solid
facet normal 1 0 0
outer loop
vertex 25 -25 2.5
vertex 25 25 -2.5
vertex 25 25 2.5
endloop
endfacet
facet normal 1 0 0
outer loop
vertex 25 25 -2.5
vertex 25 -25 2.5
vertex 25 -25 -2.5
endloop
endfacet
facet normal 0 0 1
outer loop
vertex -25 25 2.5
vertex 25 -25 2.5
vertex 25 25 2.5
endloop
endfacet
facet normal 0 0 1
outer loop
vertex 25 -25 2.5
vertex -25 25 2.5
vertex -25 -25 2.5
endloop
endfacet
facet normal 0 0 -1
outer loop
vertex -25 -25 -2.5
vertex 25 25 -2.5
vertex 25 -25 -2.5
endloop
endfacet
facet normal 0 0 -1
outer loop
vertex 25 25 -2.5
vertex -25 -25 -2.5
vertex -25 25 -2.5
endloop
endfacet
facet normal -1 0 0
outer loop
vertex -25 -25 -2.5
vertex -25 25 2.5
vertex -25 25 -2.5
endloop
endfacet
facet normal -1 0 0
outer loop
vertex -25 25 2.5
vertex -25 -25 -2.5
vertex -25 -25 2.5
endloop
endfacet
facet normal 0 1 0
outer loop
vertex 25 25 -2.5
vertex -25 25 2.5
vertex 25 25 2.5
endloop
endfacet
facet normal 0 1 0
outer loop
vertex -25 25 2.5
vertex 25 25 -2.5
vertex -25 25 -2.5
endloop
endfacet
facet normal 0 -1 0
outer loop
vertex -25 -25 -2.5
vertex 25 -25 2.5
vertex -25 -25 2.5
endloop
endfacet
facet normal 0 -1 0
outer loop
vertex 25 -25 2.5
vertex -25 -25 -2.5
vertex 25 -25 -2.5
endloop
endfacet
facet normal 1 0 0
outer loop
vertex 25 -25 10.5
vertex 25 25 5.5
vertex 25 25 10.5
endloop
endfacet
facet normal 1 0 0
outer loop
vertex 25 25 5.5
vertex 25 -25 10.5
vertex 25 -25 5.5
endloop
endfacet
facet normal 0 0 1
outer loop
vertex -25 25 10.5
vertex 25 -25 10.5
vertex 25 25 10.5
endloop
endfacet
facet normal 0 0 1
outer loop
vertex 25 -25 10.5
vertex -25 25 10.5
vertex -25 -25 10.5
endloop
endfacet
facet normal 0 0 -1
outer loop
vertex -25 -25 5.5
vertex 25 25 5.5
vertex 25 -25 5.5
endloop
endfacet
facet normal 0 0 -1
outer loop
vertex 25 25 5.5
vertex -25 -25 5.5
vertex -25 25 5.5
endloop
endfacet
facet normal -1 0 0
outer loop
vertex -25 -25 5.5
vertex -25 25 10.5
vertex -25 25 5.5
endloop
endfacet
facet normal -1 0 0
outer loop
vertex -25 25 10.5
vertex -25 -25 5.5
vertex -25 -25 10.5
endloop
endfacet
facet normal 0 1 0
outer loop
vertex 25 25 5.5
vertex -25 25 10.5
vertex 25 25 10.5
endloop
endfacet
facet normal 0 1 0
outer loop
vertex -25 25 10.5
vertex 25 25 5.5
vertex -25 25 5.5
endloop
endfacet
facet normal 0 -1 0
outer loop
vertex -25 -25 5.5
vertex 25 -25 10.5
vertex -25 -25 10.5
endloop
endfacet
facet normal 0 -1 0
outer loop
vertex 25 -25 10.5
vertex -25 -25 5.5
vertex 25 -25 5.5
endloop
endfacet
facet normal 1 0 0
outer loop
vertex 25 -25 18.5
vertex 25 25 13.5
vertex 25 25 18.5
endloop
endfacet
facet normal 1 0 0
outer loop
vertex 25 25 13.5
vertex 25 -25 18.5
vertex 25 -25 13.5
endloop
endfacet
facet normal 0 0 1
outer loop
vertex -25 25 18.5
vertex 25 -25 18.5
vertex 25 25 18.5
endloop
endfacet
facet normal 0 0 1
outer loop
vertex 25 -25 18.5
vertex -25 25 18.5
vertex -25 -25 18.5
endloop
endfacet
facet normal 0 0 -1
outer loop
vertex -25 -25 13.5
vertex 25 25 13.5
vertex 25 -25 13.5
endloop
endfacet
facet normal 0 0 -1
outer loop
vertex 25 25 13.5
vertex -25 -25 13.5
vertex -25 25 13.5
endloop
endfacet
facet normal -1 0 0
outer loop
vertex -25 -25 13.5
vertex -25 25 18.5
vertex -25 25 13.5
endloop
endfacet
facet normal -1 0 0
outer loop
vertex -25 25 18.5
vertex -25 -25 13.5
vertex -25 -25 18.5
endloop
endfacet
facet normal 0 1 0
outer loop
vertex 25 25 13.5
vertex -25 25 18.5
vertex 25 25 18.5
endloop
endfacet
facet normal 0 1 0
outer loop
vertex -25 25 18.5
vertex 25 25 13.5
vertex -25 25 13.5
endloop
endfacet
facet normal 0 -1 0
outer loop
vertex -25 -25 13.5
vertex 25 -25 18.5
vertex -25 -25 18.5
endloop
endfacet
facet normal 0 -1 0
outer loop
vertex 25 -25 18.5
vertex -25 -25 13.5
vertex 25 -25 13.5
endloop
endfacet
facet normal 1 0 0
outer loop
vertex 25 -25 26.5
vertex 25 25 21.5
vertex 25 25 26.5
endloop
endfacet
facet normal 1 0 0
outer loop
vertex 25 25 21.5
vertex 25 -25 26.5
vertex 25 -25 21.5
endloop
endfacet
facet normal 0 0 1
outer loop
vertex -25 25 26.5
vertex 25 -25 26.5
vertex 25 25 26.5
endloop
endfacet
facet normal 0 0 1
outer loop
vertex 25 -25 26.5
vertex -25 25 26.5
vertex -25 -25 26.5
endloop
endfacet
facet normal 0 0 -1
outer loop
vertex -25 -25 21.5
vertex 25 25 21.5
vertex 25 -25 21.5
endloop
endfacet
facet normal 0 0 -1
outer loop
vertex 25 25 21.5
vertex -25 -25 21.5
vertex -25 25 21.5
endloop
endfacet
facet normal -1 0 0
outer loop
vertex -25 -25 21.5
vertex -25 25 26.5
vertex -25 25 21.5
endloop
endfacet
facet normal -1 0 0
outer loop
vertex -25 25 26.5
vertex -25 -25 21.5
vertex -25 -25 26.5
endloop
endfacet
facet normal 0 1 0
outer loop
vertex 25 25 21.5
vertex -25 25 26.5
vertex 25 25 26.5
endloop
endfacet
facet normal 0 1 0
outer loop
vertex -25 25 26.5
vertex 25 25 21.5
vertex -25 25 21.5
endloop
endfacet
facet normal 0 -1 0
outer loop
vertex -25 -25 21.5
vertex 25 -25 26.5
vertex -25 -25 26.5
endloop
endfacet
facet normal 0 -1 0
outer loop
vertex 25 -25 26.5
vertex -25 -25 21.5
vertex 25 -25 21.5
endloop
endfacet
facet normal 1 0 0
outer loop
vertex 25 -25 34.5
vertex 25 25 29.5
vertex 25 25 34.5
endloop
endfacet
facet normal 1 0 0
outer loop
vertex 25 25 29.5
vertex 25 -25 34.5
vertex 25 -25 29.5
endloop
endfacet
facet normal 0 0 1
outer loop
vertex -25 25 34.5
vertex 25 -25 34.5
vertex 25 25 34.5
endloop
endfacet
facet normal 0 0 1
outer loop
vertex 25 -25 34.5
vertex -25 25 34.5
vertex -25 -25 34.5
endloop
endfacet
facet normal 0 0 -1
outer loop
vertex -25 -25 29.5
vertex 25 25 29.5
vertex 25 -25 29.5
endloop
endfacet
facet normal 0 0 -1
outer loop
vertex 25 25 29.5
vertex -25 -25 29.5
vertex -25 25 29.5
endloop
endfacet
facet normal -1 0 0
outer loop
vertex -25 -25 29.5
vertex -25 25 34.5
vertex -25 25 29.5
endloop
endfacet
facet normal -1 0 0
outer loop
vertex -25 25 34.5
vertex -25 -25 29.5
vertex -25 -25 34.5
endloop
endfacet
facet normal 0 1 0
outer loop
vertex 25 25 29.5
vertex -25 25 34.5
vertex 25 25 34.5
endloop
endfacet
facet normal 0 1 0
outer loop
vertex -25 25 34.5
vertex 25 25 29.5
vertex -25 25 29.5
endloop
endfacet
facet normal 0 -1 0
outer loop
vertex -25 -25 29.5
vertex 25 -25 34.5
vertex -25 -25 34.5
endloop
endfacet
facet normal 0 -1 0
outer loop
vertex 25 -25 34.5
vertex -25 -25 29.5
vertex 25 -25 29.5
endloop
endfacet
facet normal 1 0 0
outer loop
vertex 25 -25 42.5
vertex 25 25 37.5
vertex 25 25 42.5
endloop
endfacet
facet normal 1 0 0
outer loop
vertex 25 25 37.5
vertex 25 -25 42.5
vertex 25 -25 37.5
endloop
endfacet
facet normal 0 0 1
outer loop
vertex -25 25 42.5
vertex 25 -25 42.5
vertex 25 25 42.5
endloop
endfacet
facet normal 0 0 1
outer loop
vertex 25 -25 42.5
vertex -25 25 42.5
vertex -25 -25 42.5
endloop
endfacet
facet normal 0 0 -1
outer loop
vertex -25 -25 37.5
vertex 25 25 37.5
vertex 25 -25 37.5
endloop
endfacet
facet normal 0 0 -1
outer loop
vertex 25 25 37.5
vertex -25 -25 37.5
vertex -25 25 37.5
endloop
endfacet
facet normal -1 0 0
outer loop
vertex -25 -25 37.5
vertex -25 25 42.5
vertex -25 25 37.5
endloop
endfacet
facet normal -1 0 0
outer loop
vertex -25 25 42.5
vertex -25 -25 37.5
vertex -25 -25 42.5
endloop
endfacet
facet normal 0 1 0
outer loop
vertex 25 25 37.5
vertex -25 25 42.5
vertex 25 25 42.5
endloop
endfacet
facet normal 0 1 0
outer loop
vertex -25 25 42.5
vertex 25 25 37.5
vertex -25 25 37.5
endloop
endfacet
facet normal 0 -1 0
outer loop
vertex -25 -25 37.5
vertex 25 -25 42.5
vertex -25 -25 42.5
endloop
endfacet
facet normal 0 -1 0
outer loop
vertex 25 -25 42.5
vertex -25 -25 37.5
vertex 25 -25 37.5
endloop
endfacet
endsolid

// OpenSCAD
// Define parameters for the flat square plate
plate_size = 50; // Length and width of the square plate
plate_thickness = 5; // Thickness of the plate
gap = 3; // Gap between each plate

// Function to create a flat square plate
module flat_square_plate() {
    cube([plate_size, plate_size, plate_thickness], center = true);
}

// Render six flat square plates with uniform gaps between them
for (i = [0:5]) {
    translate([0, 0, i * (plate_thickness + gap)])
        flat_square_plate();
}
